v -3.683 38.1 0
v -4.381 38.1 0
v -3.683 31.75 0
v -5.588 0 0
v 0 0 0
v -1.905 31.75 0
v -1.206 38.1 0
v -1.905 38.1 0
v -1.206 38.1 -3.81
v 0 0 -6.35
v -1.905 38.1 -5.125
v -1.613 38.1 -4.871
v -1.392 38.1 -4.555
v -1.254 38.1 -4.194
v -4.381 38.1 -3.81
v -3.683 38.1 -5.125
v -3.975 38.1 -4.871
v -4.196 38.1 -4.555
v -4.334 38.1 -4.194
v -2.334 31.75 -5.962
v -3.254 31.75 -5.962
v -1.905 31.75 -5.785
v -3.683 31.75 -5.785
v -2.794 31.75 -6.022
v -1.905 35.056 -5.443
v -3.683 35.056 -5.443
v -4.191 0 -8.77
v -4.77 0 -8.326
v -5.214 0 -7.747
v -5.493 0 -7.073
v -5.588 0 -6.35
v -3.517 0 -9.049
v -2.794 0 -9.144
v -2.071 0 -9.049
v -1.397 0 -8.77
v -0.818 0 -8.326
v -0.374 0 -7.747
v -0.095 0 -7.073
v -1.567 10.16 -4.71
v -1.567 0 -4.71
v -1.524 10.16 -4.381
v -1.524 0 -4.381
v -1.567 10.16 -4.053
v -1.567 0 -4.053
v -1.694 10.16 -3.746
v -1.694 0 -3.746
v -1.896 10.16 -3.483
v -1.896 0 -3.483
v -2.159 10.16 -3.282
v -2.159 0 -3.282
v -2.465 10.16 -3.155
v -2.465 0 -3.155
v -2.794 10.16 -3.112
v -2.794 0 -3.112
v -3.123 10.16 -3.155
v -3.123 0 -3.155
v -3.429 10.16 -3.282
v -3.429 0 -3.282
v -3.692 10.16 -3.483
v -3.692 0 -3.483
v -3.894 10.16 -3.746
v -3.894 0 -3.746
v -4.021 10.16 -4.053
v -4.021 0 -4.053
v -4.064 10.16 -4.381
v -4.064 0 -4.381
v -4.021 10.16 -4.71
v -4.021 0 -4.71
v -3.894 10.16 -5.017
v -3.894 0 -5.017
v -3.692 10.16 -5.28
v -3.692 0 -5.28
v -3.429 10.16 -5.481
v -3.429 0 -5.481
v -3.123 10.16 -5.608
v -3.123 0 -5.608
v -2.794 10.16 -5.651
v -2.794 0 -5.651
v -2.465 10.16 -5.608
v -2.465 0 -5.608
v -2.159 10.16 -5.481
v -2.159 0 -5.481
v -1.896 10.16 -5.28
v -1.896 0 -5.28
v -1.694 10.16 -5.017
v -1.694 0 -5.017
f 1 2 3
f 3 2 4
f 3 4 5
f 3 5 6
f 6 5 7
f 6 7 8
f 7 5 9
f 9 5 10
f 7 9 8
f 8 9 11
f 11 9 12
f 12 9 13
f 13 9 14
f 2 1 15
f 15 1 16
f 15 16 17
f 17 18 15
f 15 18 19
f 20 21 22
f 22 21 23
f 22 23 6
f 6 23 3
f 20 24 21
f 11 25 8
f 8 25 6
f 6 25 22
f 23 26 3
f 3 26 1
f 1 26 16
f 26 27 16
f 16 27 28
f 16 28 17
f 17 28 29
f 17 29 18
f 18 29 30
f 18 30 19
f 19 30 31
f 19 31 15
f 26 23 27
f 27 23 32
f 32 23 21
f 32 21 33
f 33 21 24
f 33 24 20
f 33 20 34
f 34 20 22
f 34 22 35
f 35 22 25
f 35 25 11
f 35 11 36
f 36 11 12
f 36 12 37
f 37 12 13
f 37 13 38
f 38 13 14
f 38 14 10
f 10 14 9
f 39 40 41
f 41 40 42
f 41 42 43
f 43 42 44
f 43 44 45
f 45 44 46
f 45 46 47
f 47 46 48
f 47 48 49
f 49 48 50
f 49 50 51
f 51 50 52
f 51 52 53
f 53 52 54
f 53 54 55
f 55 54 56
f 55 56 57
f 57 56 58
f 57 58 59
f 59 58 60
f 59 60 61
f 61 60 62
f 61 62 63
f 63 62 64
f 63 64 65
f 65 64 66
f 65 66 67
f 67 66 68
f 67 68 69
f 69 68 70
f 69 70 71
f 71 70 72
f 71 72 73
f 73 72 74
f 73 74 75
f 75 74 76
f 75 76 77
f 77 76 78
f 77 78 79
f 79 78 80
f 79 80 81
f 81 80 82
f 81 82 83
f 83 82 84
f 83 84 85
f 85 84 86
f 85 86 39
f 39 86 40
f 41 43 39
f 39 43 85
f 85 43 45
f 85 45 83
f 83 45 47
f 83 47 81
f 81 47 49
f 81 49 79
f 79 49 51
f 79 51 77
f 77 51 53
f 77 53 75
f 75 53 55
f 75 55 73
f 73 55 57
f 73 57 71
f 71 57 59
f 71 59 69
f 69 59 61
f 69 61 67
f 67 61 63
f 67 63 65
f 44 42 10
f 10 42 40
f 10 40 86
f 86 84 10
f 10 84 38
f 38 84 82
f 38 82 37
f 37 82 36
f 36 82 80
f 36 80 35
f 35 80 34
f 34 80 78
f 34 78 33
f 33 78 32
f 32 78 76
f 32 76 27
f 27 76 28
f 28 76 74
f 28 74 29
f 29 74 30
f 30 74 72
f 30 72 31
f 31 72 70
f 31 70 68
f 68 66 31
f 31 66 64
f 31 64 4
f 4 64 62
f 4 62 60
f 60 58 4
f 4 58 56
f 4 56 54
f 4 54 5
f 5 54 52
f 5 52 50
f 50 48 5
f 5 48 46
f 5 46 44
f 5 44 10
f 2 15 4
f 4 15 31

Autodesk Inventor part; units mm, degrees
ref_plane "YZ Plane" through (0, 0, 0) normal (1, 0, 0) x (0, 1, 0)
ref_plane "XY Plane" through (0, 0, 0) normal (0, 0, 1) x (1, 0, 0)
sketch "Sketch6" plane through (0, 0, 0) normal (0, 1, 0) x (-1, 0, 0)
  line L0 (0, 0) -> (5.588, 0)
  line L1 (5.588, 0) -> (5.588, -6.35)
  line L2 (5.588, -6.35) -> (0, -6.35)
  line L3 (0, -6.35) -> (0, 0)
  arc A0 (0, -6.35) -> (5.588, -6.35) centre (2.794, -6.35) ccw
  dimension "d25" = 5.588
  dimension "d26" = 6.35
ref_plane "Work Plane1" through (0, 38.1, 0) normal (0, 1, 0) x (-1, 0, 0)
sketch "Sketch8" plane through (0, 38.1, 0) normal (0, 1, 0) x (-1, 0, 0)
  line L0 (4.3815, 0) -> (1.2065, 0)
  line L1 (1.2065, 0) -> (1.2065, -3.81)
  line L2 (1.2065, -3.81) -> (4.3815, -3.81)
  line L3 (4.3815, -3.81) -> (4.3815, 0)
  arc A0 (1.2065, -3.81) -> (4.3815, -3.81) centre (2.794, -3.81) ccw
  point P0 (0, 0)
  dimension "d27" = 3.175
  dimension "d28" = 3.81
  dimension "d49" = 1.2065
loft "Loft1" add profiles "Sketch6", "Sketch8"
sketch "Sketch9" plane through (-5.588, 0, 0) normal (0, 0, 1) x (1, 0, 0)
  line L0 (0, 0) -> (5.588, 0) projected
  line L1 (5.588, 0) -> (4.3815, 38.1) projected
  line L2 (1.2065, 38.1) -> (4.3815, 38.1) projected
  line L3 (0, 0) -> (1.2065, 38.1) projected
  line L4 (4.3815, 38.1) -> (5.588, 0) projected
  line L5 (4.5826, 31.75) -> (1.0054, 31.75)
  line L6 (0, 0) -> (1.2065, 38.1) projected
  dimension "d34" = 6.35
extrude "Extrusion5" add sketch "Sketch9" along normal blind 38.608 contours L3 L2 L1 L5
sketch "Sketch12" plane through (-2.794, 0, -6.35) normal (0, -1, 0) x (1, 0, 0)
  circle A0 centre (0, 1.9685) radius 1.27
  arc A1 (-2.794, 0) -> (2.794, 0) centre (0, 0) ccw projected
  line L0 (0, -2.794) -> (0, 1.9685)
  point P0 (2.794, 6.35)
  dimension "d44" = 2.54
  dimension "d46" = 4.7625
extrude "Extrusion8" cut sketch "Sketch12" against normal blind 10.16
sketch "Sketch13" plane through (-5.588, 0, 0) normal (0, 0, 1) x (1, 0, 0)
  line L0 (1.2065, 38.1) -> (4.3815, 38.1) projected
  line L1 (3.683, 38.1) -> (1.905, 38.1)
  line L2 (1.905, 38.1) -> (1.905, 31.75)
  line L3 (1.905, 31.75) -> (3.683, 31.75)
  line L4 (3.683, 31.75) -> (3.683, 38.1)
  line L5 (3.683, 31.75) -> (4.5826, 31.75) construction
  line L6 (4.3815, 38.1) -> (5.588, 0) construction
  line L7 (1.905, 31.75) -> (1.0054, 31.75) construction
  line L8 (0, 0) -> (1.2065, 38.1) construction
  line L9 (6.375, 40.676) -> (-2.8276, 40.676)
  line L10 (-2.8276, 40.676) -> (-2.8276, 26.7394)
  line L11 (-2.8276, 26.7394) -> (6.375, 26.7394)
  line L12 (6.375, 26.7394) -> (6.375, 40.676)
  dimension "d50" = 1.778
  dimension "d51" = 6.35
extrude "Extrusion9" cut sketch "Sketch13" against normal through all contours L0 L4 L3 L2
extrude "Extrusion10" cut sketch "Sketch13" along normal through all contours L0 L4 L3 L2 | L12 L11 L10 L9
properties part number "RudderStabilizingFinBottom_Print1"
